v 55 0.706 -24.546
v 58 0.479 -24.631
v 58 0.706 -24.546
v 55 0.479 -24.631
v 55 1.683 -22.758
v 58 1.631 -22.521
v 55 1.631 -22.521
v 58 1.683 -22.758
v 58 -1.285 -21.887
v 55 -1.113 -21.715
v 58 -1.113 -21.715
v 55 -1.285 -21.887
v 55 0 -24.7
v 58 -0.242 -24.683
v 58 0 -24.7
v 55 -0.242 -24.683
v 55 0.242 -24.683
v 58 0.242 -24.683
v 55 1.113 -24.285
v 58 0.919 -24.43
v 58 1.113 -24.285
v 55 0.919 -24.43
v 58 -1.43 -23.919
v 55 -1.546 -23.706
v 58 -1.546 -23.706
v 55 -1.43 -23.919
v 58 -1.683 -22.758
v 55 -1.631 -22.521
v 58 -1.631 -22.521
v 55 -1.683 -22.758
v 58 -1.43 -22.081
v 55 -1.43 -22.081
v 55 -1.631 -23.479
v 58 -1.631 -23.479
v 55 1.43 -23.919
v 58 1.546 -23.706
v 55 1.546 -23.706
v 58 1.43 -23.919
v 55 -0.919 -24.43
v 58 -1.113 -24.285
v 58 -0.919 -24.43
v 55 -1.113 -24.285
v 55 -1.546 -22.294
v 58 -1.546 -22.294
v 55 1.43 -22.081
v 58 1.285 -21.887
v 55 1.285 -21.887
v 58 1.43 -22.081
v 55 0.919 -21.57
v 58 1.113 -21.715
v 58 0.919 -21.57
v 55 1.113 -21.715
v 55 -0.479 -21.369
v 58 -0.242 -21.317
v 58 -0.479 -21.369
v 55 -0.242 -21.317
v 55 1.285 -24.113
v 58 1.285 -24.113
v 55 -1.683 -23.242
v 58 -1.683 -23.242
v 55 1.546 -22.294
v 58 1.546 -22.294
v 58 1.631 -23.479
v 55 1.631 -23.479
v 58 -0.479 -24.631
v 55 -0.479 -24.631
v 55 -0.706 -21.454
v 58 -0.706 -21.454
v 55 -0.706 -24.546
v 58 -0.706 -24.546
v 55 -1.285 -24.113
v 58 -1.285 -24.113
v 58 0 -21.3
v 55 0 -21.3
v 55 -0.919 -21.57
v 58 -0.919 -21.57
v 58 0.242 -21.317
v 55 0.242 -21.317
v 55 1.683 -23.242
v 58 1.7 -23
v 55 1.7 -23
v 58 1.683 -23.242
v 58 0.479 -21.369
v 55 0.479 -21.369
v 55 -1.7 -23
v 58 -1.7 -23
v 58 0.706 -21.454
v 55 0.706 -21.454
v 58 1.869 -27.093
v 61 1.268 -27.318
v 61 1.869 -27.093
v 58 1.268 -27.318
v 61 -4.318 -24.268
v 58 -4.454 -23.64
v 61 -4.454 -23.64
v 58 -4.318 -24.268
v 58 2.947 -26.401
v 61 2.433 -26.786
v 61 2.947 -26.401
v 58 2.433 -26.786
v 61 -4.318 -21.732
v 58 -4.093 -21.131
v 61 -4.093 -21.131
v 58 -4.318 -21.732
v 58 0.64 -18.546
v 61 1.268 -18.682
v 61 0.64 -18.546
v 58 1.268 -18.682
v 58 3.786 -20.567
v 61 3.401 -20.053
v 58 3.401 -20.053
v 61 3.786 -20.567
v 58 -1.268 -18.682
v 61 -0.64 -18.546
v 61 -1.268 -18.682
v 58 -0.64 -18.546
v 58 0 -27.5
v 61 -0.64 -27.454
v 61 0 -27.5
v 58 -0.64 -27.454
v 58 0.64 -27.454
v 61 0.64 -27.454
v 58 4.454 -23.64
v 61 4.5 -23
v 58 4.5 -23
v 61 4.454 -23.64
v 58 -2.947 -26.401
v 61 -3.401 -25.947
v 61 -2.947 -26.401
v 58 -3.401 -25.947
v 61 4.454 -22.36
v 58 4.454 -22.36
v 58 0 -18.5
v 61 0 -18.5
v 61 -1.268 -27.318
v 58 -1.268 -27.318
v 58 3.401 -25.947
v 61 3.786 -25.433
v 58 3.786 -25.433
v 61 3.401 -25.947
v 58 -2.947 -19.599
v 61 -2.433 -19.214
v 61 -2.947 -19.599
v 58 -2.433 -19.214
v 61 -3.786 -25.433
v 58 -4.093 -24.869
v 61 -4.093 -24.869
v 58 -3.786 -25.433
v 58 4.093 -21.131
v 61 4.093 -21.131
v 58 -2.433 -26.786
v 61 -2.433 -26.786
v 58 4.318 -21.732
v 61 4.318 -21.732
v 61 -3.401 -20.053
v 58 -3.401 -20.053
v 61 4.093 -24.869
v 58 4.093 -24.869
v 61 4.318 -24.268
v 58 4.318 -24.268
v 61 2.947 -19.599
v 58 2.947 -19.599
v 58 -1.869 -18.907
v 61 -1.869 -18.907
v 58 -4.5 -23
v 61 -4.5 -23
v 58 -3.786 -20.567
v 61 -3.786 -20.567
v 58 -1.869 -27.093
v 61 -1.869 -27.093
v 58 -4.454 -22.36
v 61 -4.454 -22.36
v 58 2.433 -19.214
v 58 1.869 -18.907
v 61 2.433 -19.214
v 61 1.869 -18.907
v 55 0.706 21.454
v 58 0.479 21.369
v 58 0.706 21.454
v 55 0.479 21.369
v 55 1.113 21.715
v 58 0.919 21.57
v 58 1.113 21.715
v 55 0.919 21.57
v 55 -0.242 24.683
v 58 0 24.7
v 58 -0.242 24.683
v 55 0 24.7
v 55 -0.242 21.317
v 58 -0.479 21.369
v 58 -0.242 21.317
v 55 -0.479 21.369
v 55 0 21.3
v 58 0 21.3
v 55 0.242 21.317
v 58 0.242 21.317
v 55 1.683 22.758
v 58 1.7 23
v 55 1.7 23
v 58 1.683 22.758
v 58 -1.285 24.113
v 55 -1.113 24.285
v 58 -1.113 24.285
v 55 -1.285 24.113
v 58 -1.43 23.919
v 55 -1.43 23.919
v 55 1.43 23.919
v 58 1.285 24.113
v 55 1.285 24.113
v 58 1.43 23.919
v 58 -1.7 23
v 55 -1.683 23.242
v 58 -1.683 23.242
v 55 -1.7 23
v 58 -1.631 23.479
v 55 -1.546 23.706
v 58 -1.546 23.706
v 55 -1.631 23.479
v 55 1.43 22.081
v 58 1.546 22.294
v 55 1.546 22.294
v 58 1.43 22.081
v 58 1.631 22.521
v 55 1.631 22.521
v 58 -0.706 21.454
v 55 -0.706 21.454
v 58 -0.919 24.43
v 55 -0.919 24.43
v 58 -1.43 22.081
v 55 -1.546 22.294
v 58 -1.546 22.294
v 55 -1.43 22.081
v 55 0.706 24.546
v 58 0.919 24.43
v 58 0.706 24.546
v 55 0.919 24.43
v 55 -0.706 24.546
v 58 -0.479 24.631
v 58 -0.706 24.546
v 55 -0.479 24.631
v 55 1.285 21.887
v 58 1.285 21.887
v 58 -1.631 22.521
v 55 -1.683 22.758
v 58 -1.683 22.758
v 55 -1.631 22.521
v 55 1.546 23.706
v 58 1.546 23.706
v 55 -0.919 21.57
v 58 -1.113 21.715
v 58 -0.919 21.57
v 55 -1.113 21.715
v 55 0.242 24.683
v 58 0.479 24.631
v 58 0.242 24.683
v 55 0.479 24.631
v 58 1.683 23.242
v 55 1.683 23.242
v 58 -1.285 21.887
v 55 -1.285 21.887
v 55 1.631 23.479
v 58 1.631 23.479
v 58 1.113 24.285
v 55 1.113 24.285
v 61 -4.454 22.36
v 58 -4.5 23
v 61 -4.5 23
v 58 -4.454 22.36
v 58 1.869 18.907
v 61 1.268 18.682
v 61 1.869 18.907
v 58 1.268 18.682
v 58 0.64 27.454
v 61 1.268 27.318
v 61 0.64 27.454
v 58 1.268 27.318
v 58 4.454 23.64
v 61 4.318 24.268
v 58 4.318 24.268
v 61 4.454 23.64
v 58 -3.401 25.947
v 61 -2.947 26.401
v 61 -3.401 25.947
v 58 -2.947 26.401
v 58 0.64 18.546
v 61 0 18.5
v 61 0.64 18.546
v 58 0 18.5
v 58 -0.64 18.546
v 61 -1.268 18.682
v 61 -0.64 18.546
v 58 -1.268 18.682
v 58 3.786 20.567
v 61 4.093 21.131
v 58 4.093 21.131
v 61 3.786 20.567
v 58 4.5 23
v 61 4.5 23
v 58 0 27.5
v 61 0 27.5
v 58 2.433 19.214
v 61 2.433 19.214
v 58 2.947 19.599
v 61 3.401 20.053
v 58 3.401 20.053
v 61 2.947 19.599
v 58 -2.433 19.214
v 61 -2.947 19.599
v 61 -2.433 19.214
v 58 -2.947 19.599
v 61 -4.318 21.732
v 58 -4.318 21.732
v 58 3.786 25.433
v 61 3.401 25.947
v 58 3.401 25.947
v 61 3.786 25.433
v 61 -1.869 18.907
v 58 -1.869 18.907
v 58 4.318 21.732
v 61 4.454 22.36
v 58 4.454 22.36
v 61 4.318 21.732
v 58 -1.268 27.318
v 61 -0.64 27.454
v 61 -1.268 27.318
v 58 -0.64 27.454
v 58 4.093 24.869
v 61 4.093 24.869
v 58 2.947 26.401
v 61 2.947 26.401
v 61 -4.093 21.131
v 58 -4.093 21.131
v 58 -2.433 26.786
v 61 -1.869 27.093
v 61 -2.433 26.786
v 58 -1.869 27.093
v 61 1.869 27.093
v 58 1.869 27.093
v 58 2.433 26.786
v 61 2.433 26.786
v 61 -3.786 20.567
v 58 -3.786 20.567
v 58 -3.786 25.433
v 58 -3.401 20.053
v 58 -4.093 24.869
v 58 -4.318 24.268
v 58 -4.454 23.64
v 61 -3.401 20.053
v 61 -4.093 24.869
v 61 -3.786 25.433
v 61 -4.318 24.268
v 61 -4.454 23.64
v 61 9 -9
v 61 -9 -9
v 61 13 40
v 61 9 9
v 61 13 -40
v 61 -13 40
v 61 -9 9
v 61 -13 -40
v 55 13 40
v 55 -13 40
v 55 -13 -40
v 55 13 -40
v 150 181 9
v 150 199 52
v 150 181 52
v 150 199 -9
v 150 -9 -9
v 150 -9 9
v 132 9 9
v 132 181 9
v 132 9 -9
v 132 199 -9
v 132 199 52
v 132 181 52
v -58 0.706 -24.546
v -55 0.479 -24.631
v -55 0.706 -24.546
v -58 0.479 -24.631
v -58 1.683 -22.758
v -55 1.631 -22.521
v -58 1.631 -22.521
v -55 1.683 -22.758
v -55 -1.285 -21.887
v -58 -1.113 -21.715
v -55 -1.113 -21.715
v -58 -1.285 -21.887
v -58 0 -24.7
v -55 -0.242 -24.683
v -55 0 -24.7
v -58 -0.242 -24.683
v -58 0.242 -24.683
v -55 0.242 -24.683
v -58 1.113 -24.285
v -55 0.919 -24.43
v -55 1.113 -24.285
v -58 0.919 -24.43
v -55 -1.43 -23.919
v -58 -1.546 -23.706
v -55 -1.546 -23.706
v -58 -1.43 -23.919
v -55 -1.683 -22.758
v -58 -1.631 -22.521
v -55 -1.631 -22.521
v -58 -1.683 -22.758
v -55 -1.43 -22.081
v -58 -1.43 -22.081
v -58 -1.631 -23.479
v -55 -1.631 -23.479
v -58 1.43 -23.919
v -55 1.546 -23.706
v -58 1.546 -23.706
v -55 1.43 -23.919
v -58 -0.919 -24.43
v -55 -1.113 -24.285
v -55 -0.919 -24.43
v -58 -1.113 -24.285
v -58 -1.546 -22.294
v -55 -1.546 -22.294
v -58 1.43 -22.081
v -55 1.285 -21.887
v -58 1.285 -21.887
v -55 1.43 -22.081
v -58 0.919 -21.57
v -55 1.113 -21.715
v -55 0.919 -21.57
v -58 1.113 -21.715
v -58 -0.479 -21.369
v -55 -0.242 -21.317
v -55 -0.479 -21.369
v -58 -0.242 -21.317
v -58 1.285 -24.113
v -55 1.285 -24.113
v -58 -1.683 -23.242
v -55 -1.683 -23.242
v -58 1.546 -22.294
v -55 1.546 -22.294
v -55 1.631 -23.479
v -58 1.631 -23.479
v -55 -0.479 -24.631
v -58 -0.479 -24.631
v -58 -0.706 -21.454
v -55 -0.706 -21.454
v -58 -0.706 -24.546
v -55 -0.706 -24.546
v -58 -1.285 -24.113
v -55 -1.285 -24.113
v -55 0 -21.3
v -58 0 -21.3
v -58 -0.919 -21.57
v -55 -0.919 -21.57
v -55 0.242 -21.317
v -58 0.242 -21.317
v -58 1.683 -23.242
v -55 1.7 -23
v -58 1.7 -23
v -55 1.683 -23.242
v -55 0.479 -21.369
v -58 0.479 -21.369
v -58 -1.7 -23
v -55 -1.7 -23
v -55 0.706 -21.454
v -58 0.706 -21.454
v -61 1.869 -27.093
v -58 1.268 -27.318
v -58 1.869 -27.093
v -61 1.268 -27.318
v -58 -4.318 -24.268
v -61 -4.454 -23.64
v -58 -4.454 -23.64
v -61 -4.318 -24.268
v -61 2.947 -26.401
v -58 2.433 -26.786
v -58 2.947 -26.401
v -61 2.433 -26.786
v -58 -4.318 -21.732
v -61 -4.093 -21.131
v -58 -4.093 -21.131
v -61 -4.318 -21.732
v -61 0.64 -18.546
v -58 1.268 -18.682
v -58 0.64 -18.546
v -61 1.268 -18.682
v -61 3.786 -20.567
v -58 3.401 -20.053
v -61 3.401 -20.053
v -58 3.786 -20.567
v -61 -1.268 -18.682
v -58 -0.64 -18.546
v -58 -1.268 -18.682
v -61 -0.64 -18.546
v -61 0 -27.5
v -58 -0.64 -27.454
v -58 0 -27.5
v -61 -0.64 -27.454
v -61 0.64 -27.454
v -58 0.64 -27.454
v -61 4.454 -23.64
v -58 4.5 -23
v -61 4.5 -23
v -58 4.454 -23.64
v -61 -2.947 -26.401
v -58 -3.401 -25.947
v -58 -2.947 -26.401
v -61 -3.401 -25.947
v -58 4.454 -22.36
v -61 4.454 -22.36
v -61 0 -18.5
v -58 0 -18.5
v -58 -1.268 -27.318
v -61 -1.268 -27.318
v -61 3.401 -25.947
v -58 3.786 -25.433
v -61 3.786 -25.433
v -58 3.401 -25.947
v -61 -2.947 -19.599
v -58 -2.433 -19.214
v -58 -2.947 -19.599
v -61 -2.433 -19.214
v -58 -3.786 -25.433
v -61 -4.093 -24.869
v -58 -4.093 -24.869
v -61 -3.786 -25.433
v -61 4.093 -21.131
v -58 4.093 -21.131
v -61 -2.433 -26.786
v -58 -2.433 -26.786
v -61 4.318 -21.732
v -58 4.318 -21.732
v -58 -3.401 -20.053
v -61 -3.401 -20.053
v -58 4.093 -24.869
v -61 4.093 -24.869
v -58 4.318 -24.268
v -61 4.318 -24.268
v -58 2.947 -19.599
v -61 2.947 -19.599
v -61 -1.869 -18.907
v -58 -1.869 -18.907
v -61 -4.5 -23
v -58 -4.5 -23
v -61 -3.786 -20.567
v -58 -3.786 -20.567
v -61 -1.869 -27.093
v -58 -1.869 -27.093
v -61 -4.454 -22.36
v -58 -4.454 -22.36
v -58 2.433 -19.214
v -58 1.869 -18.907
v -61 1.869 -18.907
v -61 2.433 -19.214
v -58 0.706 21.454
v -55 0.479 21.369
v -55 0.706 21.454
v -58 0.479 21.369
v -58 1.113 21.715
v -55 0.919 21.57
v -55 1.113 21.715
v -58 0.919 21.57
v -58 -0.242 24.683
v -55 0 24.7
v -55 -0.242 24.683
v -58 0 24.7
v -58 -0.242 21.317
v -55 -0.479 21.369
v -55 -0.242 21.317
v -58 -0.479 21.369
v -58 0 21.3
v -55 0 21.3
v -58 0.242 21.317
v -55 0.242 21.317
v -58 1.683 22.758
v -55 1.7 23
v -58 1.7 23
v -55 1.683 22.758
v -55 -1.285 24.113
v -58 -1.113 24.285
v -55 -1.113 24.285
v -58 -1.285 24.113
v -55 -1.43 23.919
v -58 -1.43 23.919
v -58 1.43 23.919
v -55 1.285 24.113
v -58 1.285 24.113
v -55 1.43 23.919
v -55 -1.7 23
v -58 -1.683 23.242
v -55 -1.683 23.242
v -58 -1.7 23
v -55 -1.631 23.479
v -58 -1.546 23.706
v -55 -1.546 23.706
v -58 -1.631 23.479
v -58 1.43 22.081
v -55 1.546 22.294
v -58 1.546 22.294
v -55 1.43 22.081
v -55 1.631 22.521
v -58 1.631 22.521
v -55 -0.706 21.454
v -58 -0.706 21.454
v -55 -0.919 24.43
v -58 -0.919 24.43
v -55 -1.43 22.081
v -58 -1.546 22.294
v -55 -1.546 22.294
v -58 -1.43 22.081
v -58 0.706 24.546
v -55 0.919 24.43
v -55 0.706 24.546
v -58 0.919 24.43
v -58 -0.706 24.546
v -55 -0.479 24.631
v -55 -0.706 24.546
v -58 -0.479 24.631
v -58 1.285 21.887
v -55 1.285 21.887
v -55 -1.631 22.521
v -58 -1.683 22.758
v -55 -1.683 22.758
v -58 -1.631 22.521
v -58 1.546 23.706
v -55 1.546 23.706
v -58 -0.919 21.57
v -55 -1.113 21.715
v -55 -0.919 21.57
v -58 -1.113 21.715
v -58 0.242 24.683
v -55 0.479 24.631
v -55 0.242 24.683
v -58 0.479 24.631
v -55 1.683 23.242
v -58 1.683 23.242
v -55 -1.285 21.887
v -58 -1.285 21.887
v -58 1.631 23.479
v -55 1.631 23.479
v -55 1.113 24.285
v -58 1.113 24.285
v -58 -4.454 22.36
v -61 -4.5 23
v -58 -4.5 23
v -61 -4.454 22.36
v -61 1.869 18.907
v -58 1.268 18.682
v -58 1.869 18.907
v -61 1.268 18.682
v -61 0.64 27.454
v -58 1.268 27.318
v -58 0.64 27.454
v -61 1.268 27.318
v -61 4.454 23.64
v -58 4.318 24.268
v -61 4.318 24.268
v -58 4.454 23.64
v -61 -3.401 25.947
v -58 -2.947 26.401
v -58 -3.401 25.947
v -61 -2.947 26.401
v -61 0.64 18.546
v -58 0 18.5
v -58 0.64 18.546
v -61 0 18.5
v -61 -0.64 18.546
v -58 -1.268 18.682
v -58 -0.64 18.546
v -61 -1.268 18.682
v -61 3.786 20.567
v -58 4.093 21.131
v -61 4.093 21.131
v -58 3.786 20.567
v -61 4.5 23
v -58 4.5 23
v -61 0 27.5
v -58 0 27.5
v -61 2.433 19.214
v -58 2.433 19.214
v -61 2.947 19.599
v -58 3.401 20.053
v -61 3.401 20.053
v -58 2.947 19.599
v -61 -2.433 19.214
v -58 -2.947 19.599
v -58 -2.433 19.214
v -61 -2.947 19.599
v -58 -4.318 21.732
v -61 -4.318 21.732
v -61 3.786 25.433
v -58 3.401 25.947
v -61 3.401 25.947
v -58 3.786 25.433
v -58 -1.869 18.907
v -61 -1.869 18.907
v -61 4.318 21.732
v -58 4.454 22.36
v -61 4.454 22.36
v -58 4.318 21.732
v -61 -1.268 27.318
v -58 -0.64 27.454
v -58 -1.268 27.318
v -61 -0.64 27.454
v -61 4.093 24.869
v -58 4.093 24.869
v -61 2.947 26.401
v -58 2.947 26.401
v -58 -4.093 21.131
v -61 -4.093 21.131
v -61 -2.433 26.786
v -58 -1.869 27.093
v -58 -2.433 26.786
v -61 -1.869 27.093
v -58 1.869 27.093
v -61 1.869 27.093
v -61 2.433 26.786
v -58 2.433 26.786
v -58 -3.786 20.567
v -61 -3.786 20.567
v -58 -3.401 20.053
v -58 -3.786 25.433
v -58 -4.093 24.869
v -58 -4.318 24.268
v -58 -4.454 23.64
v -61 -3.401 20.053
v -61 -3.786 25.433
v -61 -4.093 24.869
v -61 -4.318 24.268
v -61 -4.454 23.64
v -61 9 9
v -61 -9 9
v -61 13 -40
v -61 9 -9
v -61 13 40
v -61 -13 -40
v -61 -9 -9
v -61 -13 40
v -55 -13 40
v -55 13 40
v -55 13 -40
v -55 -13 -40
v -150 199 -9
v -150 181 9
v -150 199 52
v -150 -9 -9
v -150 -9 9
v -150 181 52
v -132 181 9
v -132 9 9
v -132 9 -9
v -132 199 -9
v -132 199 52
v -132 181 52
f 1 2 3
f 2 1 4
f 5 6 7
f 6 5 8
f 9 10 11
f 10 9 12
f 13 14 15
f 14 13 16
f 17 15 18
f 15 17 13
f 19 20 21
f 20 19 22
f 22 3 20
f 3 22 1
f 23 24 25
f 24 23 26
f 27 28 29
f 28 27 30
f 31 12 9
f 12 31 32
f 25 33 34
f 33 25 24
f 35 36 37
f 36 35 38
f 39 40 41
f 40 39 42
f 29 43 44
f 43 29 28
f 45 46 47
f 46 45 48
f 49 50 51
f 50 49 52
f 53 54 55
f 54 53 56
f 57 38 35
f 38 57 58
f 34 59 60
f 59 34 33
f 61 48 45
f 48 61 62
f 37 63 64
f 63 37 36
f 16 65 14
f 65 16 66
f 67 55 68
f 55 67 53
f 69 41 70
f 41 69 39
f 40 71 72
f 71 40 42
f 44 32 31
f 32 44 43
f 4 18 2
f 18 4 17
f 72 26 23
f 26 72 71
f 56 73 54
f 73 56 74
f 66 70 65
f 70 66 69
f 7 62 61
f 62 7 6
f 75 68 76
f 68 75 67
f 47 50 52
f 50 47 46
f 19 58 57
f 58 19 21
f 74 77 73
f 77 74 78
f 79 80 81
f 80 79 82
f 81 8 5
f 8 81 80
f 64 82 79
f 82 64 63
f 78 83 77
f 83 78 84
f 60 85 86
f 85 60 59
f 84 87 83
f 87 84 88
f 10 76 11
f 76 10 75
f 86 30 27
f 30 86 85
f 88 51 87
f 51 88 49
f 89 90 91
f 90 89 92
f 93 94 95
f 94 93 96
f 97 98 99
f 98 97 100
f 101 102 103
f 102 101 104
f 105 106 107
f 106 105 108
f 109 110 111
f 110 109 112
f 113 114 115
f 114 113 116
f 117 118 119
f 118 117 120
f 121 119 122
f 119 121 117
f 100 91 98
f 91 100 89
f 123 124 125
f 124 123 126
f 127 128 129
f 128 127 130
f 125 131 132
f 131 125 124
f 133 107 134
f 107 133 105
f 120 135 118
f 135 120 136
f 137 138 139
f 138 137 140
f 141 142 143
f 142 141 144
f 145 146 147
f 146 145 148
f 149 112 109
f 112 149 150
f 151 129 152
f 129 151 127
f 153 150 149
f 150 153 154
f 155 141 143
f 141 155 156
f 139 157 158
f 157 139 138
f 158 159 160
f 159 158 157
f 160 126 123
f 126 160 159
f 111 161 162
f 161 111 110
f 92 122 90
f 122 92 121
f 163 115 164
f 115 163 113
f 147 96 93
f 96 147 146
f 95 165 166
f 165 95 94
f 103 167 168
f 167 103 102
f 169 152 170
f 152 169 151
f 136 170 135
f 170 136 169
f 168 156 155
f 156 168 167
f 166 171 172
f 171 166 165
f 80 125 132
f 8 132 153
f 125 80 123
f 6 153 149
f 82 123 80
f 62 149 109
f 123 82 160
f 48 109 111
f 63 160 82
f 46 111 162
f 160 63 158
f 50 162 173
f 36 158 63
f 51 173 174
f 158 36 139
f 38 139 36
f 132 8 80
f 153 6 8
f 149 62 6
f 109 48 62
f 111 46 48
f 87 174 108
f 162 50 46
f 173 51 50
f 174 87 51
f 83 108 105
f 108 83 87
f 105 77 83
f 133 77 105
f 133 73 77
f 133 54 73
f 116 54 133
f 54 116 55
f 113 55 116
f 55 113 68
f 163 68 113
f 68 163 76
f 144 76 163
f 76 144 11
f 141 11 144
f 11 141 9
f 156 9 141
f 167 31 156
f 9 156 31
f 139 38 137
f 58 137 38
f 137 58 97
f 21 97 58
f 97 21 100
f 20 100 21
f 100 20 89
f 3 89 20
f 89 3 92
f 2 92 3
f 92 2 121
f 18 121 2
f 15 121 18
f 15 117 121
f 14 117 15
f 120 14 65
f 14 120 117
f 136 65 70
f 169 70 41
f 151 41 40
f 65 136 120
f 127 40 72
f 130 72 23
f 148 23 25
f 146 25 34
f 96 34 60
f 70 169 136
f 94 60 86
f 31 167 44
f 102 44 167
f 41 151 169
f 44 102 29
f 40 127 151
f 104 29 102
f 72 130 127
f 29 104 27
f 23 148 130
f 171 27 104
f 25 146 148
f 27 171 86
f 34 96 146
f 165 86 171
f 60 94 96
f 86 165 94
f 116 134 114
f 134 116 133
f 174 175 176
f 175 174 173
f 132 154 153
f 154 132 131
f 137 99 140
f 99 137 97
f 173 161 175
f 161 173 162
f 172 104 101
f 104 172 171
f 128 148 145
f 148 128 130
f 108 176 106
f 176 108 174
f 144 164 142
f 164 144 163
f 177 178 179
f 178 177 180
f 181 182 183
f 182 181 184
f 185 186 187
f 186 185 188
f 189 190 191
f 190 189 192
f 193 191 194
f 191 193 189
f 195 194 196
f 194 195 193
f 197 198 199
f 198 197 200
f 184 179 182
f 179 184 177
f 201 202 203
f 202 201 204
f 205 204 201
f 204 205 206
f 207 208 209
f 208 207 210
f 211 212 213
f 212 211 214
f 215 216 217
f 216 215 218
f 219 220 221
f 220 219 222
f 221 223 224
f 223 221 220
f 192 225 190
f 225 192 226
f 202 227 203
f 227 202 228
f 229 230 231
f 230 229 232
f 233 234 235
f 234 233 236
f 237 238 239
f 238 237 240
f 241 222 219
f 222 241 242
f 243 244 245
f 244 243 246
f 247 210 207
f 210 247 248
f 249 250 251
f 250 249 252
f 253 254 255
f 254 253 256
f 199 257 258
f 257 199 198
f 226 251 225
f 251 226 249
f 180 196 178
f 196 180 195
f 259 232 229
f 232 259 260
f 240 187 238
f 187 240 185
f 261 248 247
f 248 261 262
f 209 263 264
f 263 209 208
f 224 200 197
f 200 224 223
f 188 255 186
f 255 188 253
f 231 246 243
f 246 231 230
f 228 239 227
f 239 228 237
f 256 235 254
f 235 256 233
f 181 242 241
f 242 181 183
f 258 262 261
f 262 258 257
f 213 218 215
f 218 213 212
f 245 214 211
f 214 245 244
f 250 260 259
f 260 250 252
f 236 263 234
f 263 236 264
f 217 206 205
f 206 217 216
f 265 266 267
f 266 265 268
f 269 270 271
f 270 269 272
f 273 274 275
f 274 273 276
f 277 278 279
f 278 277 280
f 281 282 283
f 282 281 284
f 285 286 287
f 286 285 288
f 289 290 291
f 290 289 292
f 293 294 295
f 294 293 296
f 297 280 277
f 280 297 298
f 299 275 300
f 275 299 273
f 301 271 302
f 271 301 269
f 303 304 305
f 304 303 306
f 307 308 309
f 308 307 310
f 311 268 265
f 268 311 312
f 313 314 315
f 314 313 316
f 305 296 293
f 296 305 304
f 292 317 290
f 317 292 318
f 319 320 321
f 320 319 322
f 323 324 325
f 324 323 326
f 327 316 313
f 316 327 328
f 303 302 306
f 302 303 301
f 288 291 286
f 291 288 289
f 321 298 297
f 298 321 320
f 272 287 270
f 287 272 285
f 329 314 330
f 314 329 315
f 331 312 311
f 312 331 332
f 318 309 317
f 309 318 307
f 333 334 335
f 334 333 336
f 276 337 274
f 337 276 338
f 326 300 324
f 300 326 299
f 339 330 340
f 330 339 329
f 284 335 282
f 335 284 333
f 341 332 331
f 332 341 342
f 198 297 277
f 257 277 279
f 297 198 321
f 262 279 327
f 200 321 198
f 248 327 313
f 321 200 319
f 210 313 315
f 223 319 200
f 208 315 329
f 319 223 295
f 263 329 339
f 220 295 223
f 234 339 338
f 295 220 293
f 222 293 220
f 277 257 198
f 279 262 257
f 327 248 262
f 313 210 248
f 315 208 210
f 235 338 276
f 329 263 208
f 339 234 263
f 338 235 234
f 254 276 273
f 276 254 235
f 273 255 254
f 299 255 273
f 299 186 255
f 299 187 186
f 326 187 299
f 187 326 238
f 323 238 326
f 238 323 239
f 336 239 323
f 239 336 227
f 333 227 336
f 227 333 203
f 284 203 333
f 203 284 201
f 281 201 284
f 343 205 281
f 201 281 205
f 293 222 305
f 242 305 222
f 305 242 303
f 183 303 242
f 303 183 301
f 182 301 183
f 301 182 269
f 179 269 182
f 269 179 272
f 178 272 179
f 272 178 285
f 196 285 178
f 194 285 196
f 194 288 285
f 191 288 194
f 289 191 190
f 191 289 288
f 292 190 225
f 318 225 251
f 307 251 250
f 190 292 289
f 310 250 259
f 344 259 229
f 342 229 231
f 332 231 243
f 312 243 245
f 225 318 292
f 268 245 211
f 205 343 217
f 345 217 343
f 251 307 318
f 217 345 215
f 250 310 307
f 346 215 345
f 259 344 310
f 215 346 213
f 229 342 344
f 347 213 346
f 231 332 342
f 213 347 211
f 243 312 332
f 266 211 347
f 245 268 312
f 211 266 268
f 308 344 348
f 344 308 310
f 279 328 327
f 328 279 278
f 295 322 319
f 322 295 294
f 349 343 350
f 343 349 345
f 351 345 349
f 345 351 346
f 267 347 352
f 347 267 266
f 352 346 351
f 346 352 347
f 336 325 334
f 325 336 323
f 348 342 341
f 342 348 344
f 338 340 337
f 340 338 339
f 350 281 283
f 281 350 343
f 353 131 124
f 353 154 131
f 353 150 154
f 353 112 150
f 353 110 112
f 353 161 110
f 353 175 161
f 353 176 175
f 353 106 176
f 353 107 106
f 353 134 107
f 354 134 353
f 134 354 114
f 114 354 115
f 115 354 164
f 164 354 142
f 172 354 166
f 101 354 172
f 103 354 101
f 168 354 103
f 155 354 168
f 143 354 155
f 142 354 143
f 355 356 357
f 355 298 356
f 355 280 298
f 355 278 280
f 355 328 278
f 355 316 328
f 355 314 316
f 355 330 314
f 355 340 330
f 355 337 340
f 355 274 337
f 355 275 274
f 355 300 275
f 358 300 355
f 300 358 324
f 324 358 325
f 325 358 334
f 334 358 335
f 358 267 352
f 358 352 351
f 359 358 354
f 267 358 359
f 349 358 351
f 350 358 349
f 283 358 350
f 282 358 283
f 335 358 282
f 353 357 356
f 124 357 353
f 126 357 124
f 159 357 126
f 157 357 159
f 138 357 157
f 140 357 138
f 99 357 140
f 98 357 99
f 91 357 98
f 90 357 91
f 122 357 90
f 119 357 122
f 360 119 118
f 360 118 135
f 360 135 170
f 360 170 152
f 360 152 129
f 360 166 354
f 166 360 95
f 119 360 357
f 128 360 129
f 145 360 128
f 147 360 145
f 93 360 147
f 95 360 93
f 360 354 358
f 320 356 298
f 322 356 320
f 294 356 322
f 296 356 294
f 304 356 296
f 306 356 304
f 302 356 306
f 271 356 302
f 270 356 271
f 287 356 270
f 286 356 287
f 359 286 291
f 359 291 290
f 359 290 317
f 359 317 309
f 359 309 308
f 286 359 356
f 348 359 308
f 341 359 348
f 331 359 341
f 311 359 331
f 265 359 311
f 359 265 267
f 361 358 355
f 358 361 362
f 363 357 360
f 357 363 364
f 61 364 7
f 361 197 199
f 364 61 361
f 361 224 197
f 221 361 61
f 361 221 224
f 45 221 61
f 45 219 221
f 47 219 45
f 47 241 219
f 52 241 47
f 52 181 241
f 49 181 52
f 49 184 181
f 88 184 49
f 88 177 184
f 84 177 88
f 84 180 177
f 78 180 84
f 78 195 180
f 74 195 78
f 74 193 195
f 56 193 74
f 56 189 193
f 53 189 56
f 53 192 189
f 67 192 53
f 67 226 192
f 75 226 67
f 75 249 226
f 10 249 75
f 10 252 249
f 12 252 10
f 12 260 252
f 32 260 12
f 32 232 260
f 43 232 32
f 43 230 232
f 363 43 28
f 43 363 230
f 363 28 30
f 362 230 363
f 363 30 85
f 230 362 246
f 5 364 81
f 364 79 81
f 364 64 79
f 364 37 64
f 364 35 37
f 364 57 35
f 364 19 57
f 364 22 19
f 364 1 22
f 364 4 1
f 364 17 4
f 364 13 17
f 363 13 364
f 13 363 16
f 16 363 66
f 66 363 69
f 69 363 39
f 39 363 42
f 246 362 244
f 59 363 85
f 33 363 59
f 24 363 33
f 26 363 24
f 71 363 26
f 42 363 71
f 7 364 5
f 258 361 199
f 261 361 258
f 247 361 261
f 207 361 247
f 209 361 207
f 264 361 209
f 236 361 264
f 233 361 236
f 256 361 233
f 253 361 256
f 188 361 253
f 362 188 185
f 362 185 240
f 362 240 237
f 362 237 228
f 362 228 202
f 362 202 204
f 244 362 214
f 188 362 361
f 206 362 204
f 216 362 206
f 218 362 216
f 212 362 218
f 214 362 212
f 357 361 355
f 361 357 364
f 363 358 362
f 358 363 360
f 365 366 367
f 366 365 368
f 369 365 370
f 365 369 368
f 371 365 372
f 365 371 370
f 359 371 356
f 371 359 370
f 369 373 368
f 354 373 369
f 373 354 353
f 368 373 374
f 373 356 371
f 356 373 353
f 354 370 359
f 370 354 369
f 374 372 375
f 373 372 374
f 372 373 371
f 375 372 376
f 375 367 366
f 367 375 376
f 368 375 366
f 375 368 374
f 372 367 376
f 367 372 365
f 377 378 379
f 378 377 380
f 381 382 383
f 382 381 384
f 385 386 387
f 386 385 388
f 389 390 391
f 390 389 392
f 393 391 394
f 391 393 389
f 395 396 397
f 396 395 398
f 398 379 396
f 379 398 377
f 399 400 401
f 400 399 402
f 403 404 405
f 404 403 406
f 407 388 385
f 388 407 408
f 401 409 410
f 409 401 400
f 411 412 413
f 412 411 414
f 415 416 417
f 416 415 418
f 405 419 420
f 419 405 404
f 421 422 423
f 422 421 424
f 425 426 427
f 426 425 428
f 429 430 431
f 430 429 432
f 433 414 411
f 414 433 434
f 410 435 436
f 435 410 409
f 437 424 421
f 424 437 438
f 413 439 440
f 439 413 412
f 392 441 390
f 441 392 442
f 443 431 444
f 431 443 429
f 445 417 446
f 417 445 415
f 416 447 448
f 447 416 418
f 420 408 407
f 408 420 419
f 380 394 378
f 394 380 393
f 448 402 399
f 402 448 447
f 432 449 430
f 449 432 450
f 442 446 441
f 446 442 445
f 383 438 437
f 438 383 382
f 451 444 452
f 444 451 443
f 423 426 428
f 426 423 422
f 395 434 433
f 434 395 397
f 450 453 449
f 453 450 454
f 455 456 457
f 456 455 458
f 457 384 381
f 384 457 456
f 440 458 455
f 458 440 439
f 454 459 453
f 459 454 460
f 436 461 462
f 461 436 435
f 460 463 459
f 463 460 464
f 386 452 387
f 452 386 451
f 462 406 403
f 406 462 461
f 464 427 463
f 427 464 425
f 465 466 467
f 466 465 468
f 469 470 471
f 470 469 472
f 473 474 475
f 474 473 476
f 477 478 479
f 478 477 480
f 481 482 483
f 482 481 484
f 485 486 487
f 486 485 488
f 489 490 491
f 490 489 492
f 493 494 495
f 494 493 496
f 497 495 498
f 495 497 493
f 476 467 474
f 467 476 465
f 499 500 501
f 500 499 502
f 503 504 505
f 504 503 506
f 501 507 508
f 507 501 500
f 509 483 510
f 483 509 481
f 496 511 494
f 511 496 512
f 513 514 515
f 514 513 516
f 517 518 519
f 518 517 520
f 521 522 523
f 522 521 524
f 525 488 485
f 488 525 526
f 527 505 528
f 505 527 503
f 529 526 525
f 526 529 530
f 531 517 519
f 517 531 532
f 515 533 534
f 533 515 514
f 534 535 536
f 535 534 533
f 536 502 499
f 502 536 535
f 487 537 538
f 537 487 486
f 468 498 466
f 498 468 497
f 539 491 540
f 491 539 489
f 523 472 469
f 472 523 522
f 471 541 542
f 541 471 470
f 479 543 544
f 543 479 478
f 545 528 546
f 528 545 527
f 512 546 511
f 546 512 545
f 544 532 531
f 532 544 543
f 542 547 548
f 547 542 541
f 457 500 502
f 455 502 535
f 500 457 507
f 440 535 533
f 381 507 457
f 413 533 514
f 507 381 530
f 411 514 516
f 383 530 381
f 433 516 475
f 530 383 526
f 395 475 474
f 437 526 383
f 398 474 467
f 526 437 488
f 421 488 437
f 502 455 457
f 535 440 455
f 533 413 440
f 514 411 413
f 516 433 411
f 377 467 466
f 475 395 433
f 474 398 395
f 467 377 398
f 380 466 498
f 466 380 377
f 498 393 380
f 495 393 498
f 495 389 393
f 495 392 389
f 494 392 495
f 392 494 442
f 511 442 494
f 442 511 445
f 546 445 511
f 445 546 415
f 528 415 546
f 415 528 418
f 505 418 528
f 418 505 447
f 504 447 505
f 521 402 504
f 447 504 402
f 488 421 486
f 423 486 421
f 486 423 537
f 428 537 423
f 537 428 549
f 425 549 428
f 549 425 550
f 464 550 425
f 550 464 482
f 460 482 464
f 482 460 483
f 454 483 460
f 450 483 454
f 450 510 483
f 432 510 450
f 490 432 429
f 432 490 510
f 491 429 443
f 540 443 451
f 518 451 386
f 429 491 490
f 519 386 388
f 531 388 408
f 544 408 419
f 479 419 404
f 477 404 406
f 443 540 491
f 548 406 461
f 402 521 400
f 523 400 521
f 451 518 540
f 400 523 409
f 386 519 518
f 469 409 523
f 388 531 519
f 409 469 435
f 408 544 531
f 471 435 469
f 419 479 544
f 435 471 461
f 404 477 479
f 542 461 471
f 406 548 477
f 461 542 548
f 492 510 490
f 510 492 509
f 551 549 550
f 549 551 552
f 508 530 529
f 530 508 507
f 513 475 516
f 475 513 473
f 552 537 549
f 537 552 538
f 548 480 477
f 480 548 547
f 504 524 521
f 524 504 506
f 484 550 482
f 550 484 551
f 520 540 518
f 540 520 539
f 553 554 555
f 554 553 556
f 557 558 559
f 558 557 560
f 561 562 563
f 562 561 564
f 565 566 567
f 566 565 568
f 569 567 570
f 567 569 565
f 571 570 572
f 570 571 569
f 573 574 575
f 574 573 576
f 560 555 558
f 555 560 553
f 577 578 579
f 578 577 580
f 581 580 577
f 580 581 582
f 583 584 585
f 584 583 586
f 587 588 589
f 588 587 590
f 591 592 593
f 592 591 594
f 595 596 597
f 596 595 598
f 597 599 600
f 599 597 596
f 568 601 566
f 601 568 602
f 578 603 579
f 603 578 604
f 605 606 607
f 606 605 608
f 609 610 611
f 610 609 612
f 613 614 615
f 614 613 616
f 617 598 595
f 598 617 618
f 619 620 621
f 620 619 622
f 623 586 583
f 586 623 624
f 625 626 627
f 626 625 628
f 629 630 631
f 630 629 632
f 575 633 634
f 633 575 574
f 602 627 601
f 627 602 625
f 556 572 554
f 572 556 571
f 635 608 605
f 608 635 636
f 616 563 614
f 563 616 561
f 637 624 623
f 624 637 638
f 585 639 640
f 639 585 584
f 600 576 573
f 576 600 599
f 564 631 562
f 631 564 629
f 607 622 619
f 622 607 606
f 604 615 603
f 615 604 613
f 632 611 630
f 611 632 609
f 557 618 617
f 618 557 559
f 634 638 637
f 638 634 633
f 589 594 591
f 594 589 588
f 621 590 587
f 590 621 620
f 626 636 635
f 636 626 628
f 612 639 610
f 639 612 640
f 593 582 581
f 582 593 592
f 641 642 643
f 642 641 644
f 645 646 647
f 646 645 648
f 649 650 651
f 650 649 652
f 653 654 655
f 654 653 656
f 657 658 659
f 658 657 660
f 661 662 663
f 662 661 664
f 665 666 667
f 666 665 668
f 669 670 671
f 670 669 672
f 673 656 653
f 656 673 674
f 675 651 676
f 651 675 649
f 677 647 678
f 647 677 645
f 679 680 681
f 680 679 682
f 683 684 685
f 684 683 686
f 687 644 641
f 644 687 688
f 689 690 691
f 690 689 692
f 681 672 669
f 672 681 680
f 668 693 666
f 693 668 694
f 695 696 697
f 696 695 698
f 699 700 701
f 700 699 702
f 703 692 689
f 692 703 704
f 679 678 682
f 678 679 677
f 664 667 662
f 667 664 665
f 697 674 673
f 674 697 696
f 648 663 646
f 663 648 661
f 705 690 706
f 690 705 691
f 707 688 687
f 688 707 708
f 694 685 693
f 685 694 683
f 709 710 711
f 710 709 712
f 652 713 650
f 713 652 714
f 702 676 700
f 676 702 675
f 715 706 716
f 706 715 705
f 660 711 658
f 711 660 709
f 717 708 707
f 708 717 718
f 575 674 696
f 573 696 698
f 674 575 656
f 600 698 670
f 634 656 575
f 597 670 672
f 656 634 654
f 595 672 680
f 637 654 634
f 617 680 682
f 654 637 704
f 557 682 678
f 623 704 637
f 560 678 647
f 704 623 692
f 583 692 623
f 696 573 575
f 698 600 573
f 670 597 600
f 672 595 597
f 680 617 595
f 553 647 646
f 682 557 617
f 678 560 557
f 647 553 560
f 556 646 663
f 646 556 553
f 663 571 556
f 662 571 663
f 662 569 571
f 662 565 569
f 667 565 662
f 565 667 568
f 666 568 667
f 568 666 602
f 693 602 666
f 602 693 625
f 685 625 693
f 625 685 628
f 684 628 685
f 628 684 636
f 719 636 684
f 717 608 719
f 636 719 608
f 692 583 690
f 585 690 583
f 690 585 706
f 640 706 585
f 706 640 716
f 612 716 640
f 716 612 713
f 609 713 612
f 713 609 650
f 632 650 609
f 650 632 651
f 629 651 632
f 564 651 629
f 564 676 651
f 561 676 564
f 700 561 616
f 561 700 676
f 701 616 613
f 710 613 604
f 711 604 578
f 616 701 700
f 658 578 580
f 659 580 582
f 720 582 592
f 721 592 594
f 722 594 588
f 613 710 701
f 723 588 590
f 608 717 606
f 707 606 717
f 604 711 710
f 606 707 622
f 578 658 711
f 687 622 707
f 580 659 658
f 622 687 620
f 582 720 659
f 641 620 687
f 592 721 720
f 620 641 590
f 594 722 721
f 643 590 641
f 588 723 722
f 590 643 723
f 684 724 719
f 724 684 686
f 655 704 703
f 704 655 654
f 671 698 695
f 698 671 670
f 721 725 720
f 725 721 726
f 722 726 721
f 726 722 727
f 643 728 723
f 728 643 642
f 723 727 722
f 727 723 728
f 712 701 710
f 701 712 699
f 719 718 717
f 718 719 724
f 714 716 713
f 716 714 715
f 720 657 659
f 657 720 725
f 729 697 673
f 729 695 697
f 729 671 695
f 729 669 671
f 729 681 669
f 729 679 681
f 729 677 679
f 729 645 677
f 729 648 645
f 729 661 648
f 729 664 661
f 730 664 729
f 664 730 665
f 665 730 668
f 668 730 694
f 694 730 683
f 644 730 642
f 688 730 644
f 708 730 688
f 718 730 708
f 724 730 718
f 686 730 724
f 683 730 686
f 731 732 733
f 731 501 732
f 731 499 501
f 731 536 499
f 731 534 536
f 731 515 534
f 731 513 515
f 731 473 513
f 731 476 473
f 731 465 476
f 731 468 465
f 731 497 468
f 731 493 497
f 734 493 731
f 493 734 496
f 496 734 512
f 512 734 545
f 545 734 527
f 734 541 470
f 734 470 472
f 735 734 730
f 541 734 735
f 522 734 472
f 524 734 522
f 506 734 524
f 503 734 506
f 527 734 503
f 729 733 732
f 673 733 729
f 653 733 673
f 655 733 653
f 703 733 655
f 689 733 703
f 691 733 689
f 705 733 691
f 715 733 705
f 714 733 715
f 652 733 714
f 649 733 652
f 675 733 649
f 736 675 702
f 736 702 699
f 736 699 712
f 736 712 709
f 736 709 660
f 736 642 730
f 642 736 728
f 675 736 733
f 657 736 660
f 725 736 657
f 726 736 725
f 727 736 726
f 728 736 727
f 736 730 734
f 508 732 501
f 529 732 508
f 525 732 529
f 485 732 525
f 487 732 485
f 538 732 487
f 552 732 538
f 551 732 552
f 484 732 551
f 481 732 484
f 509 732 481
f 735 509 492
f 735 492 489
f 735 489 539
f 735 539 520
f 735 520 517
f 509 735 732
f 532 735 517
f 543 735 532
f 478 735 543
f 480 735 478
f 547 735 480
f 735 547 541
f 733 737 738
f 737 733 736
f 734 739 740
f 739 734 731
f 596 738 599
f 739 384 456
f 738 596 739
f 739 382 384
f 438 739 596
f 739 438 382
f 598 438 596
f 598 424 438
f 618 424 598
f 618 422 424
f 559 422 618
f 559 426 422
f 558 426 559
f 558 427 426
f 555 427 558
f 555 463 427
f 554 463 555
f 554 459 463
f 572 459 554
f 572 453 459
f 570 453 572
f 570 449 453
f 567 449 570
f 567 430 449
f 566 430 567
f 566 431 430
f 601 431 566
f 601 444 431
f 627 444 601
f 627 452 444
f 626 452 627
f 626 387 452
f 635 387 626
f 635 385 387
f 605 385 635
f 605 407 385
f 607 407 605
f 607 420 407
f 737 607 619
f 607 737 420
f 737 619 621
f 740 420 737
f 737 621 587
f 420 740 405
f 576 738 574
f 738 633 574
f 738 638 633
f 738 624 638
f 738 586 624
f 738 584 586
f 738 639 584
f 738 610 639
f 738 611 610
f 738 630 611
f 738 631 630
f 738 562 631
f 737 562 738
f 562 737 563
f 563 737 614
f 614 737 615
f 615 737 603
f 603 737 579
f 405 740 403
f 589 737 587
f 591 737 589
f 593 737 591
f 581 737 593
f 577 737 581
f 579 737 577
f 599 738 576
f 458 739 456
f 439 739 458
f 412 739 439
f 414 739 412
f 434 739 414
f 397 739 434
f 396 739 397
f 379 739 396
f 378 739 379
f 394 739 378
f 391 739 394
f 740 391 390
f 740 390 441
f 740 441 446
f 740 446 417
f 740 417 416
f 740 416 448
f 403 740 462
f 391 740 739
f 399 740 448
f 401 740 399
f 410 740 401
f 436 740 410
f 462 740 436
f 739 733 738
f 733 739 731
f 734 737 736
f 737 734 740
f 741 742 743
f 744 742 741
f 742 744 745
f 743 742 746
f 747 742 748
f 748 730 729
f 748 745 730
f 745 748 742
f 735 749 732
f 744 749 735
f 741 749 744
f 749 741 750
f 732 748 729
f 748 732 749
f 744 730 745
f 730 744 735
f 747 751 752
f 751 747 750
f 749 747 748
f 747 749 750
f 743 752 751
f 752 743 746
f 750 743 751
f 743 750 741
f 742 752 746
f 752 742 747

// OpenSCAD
// box_body.scad v5.7
//  HANDHELD/ROVER RIG  v3.9  (EXACT base - do not change measurements)
$fn=44; eps=0.8; inch=25.4;
wall=5; floor_th=4; edge=8; win_r=6; clr=1.5; pt=2.5;
m3=3.4; cb_d=7; cb_h=2.5; boss_od=8; insert_h=6; ins_d=4.2;
plate_t=3; wash_d=8; wash_h=2.0;
nut_hex=6.6; nut_th=2.6; wcb_d=9; wcb_h=3;
ant_dx = 34;  ant_dz = 8;  ant_x = 0;
zed_w=175.25; zed_h=30.25; zed_d=43.1; zed_base=120;
rad_w=90; rad_h=102; rad_d=34; ant_win=32;
agx_w=105; agx_d=105; agx_h=65; agx_so=6; agx_mt=97;
jack_gap=42; rad_stick=3; rad_standoff=15;
zed_conn_w=40; zed_conn_h=22;
rad_hole_dx=76.30; rad_hole_dy=56.89;
cord_gap=63.5;
imu_cx=-60; imu_screw=2.4;
imu_hole_dx=22.86; imu_hole_dy=27.94;
half = max(zed_w/2, ant_dx + ant_x + rad_w/2) + edge; IW = 2*half; OW = IW + 2*wall;
agx_top=floor_th+agx_so+agx_h;
zed_z0=floor_th+10; zed_cz=zed_z0+zed_h/2;
rad_z0=zed_z0+zed_h+jack_gap; rad_cz=rad_z0+rad_h/2;
OH=rad_cz+(rad_hole_dy+22)/2+8;
zed_y0=wall; zed_back=zed_y0+zed_d; rad_back=-rad_stick+rad_d;
agx_rear=63.5;
agx_cy=zed_back+cord_gap+agx_d/2; OD=agx_cy+agx_d/2+agx_rear+wall;
rad_cx=ant_dx+ant_x;
hm_dz=46; handle_reach=95; hsec=18; grip_rise=52; grip_back=190;
handle_y=agx_cy-10; handle_z=OH*0.52;
module rbox(w,d,h,r=4){ hull() for(x=[r,w-r],y=[r,d-r]) translate([x,y,0]) cylinder(r=r,h=h); }
module holes4(dx,dy){ for(x=[-dx/2,dx/2],y=[-dy/2,dy/2]) translate([x,y,0]) children(); }
module ycut(w,h,depth,r){ hull() for(a=[-1,1],b=[-1,1]) translate([a*(w/2-r),0,b*(h/2-r)]) rotate([-90,0,0]) cylinder(r=r,h=depth); }
module shell(){ translate([-OW/2,0,0]) rbox(OW,OD,OH,8); }
module cavity(){ translate([-IW/2,wall,floor_th]) rbox(IW,OD-2*wall,OH+eps,4); }
module rad_window(){ translate([rad_cx,-eps,rad_cz]) ycut(rad_w+clr, rad_h+clr, wall+2*eps, 10); }
module rad_standoffs(){ translate([rad_cx, rad_back, rad_cz]) rotate([-90,0,0]) holes4(rad_hole_dx, rad_hole_dy)
        difference(){ cylinder(d=8,h=rad_standoff); translate([0,0,-eps]) cylinder(d=2.6,h=rad_standoff+2*eps); } }
module rad_plate(){ fh=rad_hole_dy+22; py=rad_back+rad_standoff;
    difference(){
        translate([-IW/2-2, py, rad_cz-fh/2]) cube([IW+4, plate_t, fh]);
        translate([rad_cx, py-eps, rad_cz]) rotate([-90,0,0]) holes4(rad_hole_dx,rad_hole_dy) cylinder(d=m3,h=plate_t+2*eps);
        translate([rad_cx, py+plate_t-wash_h, rad_cz]) rotate([-90,0,0]) holes4(rad_hole_dx,rad_hole_dy) cylinder(d=wash_d,h=wash_h+eps);
    } }
module imu_mount(){ translate([imu_cx,-eps,rad_cz]) rotate([-90,0,0]) holes4(imu_hole_dx,imu_hole_dy) cylinder(d=1.7,h=wall+2*eps);
    translate([imu_cx,-eps,rad_cz]) rotate([-90,0,0]) holes4(imu_hole_dx,imu_hole_dy) cylinder(d=wcb_d,h=wcb_h+eps); }
module zed_window(){ translate([0,-eps,zed_cz]) ycut(zed_base+44, zed_h-2, wall+2*eps, 6); }
zed_mt_dx=153.4; zed_mt_dz=14;
module zed_plate(){ fh=zed_h+18; py=zed_back;
    difference(){
        translate([-IW/2-2, py, zed_cz-fh/2]) cube([IW+4, plate_t, fh]);
        translate([-zed_conn_w/2, py-eps, zed_cz-zed_conn_h/2]) cube([zed_conn_w, plate_t+2*eps, zed_conn_h]);
        translate([0, py-eps, zed_cz]) rotate([-90,0,0]) holes4(zed_mt_dx, zed_mt_dz) cylinder(d=m3,h=plate_t+2*eps);
        translate([0, py+plate_t-wash_h, zed_cz]) rotate([-90,0,0]) holes4(zed_mt_dx, zed_mt_dz) cylinder(d=wash_d,h=wash_h+eps);
    } }
module agx_screws(){ translate([0,agx_cy,-eps]) holes4(agx_mt,agx_mt) cylinder(d=m3,h=floor_th+agx_so+2*eps);
                     translate([0,agx_cy,-eps]) holes4(agx_mt,agx_mt) cylinder(d=wcb_d,h=wcb_h); }
module agx_mount(){ translate([0,agx_cy,floor_th]) holes4(agx_mt,agx_mt) difference(){
        cylinder(d=boss_od,h=agx_so); translate([0,0,-1]) cylinder(d=2.6,h=agx_so+3); } }
module rear_cables(){ translate([0,OD-wall-eps,floor_th+20]) ycut(104,30,wall+2*eps,8); }
module handle_mounts(){ for(s=[-1,1]) for(dz=[-hm_dz/2,hm_dz/2]) translate([s*(OW/2+eps),handle_y,handle_z+dz]) rotate([0,-90*s,0]) cylinder(d=m3,h=wall+2*eps); }
module handle_nuts(){ for(s=[-1,1]) for(dz=[-hm_dz/2,hm_dz/2])
    translate([s*(IW/2),handle_y,handle_z+dz]) rotate([0,90*s,0]) difference(){
        cylinder(d=12,h=7); translate([0,0,-eps]) cylinder(d=m3,h=8);
        translate([0,0,7-nut_th]) cylinder(d=nut_hex,h=nut_th+1,$fn=6); } }
module box_body(){ union(){
        difference(){ shell(); cavity(); rad_window(); imu_mount(); zed_window(); rear_cables(); agx_screws(); handle_mounts(); }
        agx_mount(); handle_nuts(); rad_plate(); rad_standoffs(); zed_plate();
    } }
module handle(){ ft=6; fw=26; fh=hm_dz+34;
    difference(){ translate([0,-fw/2,-fh/2]) cube([ft,fw,fh]);
        for(dz=[-hm_dz/2,hm_dz/2]){ translate([-eps,0,dz]) rotate([0,90,0]) cylinder(d=m3,h=ft+2*eps);
            translate([ft-wcb_h,0,dz]) rotate([0,90,0]) cylinder(d=wcb_d,h=wcb_h+eps); } }
    translate([ft-1,-hsec/2,-hsec/2]) cube([handle_reach-ft+1, hsec, hsec]);
    translate([handle_reach-hsec,-hsec/2,-hsec/2]) cube([hsec, grip_back+hsec/2, hsec]);
    translate([handle_reach-hsec, grip_back-hsec/2,-hsec/2]) cube([hsec, hsec, grip_rise+hsec/2]); }
module handles(){ translate([55,0,0]) handle(); translate([-55,0,0]) mirror([1,0,0]) handle(); }

// ===================== SPLIT / BOLT-TOGETHER (v3.9 exact, sliced) =====================
jclr=3.4; jins=4.2; jins_h=6;                 // M3 screw + M3 heat-set insert
yfs=28; ybs=OD-28;                            // front/back seam (past r=8 corner)
zc=[floor_th+40, OH-40];                       // 2 corner screws per seam
tab_in=8; tab_ov=12;
xCL=-(OW/2-wall/2); xCR=(OW/2-wall/2);
rad_py=rad_back+rad_standoff;                  // 46
rad_pz=[rad_cz-30, rad_cz+30];
zed_pz=[zed_cz-11, zed_cz+11];
fp_front=[[-60,2.5],[60,2.5]]; fp_back=[[-60,OD-2.5],[60,OD-2.5]];
fp_left=[[xCL,70],[xCL,OD-70]]; fp_right=[[xCR,70],[xCR,OD-70]];

module wallsolid(){ union(){
    difference(){ shell(); cavity(); rad_window(); imu_mount(); zed_window(); rear_cables(); agx_screws(); handle_mounts(); }
    handle_nuts();
} }
module R_floor(){ translate([-OW,-20,-2]) cube([2*OW,OD+40,floor_th+2]); }
module R_front(){ translate([-OW,-20,floor_th]) cube([2*OW,yfs+20,OH+2]); }
module R_back(){  translate([-OW,ybs,floor_th]) cube([2*OW,OD-ybs+20,OH+2]); }
module R_left(){  translate([-OW-2,yfs,floor_th]) cube([OW+2,ybs-yfs,OH+2]); }
module R_right(){ translate([0,yfs,floor_th]) cube([OW+2,ybs-yfs,OH+2]); }
module Rside(s){ if(s<0) R_left(); else R_right(); }
module Xin(s,y,z,dia,len){ translate([s*OW/2,y,z]) rotate([0,-s*90,0]) cylinder(d=dia,h=len); }
module Zup(x,y,dia,len){ translate([x,y,floor_th-eps]) cylinder(d=dia,h=len); }
module Zdn(x,y,dia,len){ translate([x,y,-eps]) cylinder(d=dia,h=len); }

module corner_tab(s, yseam, ydir){
    xi=s*(OW/2-wall); xc=(s<0)? xi : xi-tab_in;
    y0=(ydir>0)? yseam-tab_ov : yseam;
    ym=(ydir>0)? yseam-tab_ov/2 : yseam+tab_ov/2;
    difference(){
        translate([xc, y0, floor_th]) cube([tab_in, tab_ov, OH-floor_th]);
        for(z=zc) translate([xi,ym,z]) rotate([0,-s*90,0]) cylinder(d=jins,h=tab_in+eps);
    }
}
module joins_floorclear(){ for(p=concat(fp_front,fp_back,fp_left,fp_right)){ Zdn(p[0],p[1],jclr,floor_th+2*eps); Zdn(p[0],p[1],wcb_d,wcb_h); } }

module p_floor(){ difference(){ union(){ intersection(){ wallsolid(); R_floor(); } agx_mount(); } joins_floorclear(); } }
module p_front(){ difference(){ intersection(){ wallsolid(); R_front(); }
    for(s=[-1,1],z=zc) Xin(s, yfs-tab_ov/2, z, jclr, wall+2*eps);
    for(p=fp_front) Zup(p[0],p[1],jins,jins_h+eps);
} }
module p_back(){ difference(){ intersection(){ wallsolid(); R_back(); }
    for(s=[-1,1],z=zc) Xin(s, ybs+tab_ov/2, z, jclr, wall+2*eps);
    for(p=fp_back) Zup(p[0],p[1],jins,jins_h+eps);
} }
module side(s){ difference(){
        union(){ intersection(){ wallsolid(); Rside(s); } corner_tab(s,yfs,+1); corner_tab(s,ybs,-1); }
        for(p=(s<0?fp_left:fp_right)) Zup(p[0],p[1],jins,jins_h+eps);
        for(z=rad_pz) Xin(s, rad_py+plate_t/2, z, jclr, wall+2*eps);
        for(z=zed_pz) Xin(s, zed_back+plate_t/2, z, jclr, wall+2*eps);
    } }
module p_left(){ side(-1); }
module p_right(){ side(1); }

// separate plates: IDENTICAL positions/holes, just IW-wide (fit between walls) + end inserts
module p_rad(){ fh=rad_hole_dy+22; py=rad_py; union(){
    difference(){
        translate([-IW/2, py, rad_cz-fh/2]) cube([IW, plate_t, fh]);
        translate([rad_cx, py-eps, rad_cz]) rotate([-90,0,0]) holes4(rad_hole_dx,rad_hole_dy) cylinder(d=2.8,h=plate_t+2*eps);   // smaller (M3 self-tap)
        for(s=[-1,1],z=rad_pz) translate([s*(IW/2)+(s<0?-eps:eps-jins_h), py+plate_t/2, z]) rotate([0,90,0]) cylinder(d=jins,h=jins_h+eps);
    }
    rad_standoffs();
} }
module p_zed(){ fh=zed_h+18; py=zed_back; difference(){
    translate([-IW/2, py, zed_cz-fh/2]) cube([IW, plate_t, fh]);
    translate([-zed_conn_w/2, py-eps, zed_cz-zed_conn_h/2]) cube([zed_conn_w, plate_t+2*eps, zed_conn_h]);
    translate([0, py-eps, zed_cz]) rotate([-90,0,0]) holes4(zed_mt_dx, zed_mt_dz) cylinder(d=3.2,h=plate_t+2*eps);   // smaller (snug M3)
    for(s=[-1,1],z=zed_pz) translate([s*(IW/2)+(s<0?-eps:eps-jins_h), py+plate_t/2, z]) rotate([0,90,0]) cylinder(d=jins,h=jins_h+eps);
} }

module split_assembly(){ p_floor(); p_front(); p_back(); p_left(); p_right(); p_rad(); p_zed();
    translate([ OW/2,handle_y,handle_z]) handle(); translate([-OW/2,handle_y,handle_z]) mirror([1,0,0]) handle(); }

part="handles";
if      (part=="assembly")  split_assembly();
else if (part=="floor")     p_floor();
else if (part=="front")     p_front();
else if (part=="back")      p_back();
else if (part=="left")      p_left();
else if (part=="right")     p_right();
else if (part=="rad_plate") p_rad();
else if (part=="zed_plate") p_zed();
else if (part=="handles")   handles();
else if (part=="handle")    handle();
